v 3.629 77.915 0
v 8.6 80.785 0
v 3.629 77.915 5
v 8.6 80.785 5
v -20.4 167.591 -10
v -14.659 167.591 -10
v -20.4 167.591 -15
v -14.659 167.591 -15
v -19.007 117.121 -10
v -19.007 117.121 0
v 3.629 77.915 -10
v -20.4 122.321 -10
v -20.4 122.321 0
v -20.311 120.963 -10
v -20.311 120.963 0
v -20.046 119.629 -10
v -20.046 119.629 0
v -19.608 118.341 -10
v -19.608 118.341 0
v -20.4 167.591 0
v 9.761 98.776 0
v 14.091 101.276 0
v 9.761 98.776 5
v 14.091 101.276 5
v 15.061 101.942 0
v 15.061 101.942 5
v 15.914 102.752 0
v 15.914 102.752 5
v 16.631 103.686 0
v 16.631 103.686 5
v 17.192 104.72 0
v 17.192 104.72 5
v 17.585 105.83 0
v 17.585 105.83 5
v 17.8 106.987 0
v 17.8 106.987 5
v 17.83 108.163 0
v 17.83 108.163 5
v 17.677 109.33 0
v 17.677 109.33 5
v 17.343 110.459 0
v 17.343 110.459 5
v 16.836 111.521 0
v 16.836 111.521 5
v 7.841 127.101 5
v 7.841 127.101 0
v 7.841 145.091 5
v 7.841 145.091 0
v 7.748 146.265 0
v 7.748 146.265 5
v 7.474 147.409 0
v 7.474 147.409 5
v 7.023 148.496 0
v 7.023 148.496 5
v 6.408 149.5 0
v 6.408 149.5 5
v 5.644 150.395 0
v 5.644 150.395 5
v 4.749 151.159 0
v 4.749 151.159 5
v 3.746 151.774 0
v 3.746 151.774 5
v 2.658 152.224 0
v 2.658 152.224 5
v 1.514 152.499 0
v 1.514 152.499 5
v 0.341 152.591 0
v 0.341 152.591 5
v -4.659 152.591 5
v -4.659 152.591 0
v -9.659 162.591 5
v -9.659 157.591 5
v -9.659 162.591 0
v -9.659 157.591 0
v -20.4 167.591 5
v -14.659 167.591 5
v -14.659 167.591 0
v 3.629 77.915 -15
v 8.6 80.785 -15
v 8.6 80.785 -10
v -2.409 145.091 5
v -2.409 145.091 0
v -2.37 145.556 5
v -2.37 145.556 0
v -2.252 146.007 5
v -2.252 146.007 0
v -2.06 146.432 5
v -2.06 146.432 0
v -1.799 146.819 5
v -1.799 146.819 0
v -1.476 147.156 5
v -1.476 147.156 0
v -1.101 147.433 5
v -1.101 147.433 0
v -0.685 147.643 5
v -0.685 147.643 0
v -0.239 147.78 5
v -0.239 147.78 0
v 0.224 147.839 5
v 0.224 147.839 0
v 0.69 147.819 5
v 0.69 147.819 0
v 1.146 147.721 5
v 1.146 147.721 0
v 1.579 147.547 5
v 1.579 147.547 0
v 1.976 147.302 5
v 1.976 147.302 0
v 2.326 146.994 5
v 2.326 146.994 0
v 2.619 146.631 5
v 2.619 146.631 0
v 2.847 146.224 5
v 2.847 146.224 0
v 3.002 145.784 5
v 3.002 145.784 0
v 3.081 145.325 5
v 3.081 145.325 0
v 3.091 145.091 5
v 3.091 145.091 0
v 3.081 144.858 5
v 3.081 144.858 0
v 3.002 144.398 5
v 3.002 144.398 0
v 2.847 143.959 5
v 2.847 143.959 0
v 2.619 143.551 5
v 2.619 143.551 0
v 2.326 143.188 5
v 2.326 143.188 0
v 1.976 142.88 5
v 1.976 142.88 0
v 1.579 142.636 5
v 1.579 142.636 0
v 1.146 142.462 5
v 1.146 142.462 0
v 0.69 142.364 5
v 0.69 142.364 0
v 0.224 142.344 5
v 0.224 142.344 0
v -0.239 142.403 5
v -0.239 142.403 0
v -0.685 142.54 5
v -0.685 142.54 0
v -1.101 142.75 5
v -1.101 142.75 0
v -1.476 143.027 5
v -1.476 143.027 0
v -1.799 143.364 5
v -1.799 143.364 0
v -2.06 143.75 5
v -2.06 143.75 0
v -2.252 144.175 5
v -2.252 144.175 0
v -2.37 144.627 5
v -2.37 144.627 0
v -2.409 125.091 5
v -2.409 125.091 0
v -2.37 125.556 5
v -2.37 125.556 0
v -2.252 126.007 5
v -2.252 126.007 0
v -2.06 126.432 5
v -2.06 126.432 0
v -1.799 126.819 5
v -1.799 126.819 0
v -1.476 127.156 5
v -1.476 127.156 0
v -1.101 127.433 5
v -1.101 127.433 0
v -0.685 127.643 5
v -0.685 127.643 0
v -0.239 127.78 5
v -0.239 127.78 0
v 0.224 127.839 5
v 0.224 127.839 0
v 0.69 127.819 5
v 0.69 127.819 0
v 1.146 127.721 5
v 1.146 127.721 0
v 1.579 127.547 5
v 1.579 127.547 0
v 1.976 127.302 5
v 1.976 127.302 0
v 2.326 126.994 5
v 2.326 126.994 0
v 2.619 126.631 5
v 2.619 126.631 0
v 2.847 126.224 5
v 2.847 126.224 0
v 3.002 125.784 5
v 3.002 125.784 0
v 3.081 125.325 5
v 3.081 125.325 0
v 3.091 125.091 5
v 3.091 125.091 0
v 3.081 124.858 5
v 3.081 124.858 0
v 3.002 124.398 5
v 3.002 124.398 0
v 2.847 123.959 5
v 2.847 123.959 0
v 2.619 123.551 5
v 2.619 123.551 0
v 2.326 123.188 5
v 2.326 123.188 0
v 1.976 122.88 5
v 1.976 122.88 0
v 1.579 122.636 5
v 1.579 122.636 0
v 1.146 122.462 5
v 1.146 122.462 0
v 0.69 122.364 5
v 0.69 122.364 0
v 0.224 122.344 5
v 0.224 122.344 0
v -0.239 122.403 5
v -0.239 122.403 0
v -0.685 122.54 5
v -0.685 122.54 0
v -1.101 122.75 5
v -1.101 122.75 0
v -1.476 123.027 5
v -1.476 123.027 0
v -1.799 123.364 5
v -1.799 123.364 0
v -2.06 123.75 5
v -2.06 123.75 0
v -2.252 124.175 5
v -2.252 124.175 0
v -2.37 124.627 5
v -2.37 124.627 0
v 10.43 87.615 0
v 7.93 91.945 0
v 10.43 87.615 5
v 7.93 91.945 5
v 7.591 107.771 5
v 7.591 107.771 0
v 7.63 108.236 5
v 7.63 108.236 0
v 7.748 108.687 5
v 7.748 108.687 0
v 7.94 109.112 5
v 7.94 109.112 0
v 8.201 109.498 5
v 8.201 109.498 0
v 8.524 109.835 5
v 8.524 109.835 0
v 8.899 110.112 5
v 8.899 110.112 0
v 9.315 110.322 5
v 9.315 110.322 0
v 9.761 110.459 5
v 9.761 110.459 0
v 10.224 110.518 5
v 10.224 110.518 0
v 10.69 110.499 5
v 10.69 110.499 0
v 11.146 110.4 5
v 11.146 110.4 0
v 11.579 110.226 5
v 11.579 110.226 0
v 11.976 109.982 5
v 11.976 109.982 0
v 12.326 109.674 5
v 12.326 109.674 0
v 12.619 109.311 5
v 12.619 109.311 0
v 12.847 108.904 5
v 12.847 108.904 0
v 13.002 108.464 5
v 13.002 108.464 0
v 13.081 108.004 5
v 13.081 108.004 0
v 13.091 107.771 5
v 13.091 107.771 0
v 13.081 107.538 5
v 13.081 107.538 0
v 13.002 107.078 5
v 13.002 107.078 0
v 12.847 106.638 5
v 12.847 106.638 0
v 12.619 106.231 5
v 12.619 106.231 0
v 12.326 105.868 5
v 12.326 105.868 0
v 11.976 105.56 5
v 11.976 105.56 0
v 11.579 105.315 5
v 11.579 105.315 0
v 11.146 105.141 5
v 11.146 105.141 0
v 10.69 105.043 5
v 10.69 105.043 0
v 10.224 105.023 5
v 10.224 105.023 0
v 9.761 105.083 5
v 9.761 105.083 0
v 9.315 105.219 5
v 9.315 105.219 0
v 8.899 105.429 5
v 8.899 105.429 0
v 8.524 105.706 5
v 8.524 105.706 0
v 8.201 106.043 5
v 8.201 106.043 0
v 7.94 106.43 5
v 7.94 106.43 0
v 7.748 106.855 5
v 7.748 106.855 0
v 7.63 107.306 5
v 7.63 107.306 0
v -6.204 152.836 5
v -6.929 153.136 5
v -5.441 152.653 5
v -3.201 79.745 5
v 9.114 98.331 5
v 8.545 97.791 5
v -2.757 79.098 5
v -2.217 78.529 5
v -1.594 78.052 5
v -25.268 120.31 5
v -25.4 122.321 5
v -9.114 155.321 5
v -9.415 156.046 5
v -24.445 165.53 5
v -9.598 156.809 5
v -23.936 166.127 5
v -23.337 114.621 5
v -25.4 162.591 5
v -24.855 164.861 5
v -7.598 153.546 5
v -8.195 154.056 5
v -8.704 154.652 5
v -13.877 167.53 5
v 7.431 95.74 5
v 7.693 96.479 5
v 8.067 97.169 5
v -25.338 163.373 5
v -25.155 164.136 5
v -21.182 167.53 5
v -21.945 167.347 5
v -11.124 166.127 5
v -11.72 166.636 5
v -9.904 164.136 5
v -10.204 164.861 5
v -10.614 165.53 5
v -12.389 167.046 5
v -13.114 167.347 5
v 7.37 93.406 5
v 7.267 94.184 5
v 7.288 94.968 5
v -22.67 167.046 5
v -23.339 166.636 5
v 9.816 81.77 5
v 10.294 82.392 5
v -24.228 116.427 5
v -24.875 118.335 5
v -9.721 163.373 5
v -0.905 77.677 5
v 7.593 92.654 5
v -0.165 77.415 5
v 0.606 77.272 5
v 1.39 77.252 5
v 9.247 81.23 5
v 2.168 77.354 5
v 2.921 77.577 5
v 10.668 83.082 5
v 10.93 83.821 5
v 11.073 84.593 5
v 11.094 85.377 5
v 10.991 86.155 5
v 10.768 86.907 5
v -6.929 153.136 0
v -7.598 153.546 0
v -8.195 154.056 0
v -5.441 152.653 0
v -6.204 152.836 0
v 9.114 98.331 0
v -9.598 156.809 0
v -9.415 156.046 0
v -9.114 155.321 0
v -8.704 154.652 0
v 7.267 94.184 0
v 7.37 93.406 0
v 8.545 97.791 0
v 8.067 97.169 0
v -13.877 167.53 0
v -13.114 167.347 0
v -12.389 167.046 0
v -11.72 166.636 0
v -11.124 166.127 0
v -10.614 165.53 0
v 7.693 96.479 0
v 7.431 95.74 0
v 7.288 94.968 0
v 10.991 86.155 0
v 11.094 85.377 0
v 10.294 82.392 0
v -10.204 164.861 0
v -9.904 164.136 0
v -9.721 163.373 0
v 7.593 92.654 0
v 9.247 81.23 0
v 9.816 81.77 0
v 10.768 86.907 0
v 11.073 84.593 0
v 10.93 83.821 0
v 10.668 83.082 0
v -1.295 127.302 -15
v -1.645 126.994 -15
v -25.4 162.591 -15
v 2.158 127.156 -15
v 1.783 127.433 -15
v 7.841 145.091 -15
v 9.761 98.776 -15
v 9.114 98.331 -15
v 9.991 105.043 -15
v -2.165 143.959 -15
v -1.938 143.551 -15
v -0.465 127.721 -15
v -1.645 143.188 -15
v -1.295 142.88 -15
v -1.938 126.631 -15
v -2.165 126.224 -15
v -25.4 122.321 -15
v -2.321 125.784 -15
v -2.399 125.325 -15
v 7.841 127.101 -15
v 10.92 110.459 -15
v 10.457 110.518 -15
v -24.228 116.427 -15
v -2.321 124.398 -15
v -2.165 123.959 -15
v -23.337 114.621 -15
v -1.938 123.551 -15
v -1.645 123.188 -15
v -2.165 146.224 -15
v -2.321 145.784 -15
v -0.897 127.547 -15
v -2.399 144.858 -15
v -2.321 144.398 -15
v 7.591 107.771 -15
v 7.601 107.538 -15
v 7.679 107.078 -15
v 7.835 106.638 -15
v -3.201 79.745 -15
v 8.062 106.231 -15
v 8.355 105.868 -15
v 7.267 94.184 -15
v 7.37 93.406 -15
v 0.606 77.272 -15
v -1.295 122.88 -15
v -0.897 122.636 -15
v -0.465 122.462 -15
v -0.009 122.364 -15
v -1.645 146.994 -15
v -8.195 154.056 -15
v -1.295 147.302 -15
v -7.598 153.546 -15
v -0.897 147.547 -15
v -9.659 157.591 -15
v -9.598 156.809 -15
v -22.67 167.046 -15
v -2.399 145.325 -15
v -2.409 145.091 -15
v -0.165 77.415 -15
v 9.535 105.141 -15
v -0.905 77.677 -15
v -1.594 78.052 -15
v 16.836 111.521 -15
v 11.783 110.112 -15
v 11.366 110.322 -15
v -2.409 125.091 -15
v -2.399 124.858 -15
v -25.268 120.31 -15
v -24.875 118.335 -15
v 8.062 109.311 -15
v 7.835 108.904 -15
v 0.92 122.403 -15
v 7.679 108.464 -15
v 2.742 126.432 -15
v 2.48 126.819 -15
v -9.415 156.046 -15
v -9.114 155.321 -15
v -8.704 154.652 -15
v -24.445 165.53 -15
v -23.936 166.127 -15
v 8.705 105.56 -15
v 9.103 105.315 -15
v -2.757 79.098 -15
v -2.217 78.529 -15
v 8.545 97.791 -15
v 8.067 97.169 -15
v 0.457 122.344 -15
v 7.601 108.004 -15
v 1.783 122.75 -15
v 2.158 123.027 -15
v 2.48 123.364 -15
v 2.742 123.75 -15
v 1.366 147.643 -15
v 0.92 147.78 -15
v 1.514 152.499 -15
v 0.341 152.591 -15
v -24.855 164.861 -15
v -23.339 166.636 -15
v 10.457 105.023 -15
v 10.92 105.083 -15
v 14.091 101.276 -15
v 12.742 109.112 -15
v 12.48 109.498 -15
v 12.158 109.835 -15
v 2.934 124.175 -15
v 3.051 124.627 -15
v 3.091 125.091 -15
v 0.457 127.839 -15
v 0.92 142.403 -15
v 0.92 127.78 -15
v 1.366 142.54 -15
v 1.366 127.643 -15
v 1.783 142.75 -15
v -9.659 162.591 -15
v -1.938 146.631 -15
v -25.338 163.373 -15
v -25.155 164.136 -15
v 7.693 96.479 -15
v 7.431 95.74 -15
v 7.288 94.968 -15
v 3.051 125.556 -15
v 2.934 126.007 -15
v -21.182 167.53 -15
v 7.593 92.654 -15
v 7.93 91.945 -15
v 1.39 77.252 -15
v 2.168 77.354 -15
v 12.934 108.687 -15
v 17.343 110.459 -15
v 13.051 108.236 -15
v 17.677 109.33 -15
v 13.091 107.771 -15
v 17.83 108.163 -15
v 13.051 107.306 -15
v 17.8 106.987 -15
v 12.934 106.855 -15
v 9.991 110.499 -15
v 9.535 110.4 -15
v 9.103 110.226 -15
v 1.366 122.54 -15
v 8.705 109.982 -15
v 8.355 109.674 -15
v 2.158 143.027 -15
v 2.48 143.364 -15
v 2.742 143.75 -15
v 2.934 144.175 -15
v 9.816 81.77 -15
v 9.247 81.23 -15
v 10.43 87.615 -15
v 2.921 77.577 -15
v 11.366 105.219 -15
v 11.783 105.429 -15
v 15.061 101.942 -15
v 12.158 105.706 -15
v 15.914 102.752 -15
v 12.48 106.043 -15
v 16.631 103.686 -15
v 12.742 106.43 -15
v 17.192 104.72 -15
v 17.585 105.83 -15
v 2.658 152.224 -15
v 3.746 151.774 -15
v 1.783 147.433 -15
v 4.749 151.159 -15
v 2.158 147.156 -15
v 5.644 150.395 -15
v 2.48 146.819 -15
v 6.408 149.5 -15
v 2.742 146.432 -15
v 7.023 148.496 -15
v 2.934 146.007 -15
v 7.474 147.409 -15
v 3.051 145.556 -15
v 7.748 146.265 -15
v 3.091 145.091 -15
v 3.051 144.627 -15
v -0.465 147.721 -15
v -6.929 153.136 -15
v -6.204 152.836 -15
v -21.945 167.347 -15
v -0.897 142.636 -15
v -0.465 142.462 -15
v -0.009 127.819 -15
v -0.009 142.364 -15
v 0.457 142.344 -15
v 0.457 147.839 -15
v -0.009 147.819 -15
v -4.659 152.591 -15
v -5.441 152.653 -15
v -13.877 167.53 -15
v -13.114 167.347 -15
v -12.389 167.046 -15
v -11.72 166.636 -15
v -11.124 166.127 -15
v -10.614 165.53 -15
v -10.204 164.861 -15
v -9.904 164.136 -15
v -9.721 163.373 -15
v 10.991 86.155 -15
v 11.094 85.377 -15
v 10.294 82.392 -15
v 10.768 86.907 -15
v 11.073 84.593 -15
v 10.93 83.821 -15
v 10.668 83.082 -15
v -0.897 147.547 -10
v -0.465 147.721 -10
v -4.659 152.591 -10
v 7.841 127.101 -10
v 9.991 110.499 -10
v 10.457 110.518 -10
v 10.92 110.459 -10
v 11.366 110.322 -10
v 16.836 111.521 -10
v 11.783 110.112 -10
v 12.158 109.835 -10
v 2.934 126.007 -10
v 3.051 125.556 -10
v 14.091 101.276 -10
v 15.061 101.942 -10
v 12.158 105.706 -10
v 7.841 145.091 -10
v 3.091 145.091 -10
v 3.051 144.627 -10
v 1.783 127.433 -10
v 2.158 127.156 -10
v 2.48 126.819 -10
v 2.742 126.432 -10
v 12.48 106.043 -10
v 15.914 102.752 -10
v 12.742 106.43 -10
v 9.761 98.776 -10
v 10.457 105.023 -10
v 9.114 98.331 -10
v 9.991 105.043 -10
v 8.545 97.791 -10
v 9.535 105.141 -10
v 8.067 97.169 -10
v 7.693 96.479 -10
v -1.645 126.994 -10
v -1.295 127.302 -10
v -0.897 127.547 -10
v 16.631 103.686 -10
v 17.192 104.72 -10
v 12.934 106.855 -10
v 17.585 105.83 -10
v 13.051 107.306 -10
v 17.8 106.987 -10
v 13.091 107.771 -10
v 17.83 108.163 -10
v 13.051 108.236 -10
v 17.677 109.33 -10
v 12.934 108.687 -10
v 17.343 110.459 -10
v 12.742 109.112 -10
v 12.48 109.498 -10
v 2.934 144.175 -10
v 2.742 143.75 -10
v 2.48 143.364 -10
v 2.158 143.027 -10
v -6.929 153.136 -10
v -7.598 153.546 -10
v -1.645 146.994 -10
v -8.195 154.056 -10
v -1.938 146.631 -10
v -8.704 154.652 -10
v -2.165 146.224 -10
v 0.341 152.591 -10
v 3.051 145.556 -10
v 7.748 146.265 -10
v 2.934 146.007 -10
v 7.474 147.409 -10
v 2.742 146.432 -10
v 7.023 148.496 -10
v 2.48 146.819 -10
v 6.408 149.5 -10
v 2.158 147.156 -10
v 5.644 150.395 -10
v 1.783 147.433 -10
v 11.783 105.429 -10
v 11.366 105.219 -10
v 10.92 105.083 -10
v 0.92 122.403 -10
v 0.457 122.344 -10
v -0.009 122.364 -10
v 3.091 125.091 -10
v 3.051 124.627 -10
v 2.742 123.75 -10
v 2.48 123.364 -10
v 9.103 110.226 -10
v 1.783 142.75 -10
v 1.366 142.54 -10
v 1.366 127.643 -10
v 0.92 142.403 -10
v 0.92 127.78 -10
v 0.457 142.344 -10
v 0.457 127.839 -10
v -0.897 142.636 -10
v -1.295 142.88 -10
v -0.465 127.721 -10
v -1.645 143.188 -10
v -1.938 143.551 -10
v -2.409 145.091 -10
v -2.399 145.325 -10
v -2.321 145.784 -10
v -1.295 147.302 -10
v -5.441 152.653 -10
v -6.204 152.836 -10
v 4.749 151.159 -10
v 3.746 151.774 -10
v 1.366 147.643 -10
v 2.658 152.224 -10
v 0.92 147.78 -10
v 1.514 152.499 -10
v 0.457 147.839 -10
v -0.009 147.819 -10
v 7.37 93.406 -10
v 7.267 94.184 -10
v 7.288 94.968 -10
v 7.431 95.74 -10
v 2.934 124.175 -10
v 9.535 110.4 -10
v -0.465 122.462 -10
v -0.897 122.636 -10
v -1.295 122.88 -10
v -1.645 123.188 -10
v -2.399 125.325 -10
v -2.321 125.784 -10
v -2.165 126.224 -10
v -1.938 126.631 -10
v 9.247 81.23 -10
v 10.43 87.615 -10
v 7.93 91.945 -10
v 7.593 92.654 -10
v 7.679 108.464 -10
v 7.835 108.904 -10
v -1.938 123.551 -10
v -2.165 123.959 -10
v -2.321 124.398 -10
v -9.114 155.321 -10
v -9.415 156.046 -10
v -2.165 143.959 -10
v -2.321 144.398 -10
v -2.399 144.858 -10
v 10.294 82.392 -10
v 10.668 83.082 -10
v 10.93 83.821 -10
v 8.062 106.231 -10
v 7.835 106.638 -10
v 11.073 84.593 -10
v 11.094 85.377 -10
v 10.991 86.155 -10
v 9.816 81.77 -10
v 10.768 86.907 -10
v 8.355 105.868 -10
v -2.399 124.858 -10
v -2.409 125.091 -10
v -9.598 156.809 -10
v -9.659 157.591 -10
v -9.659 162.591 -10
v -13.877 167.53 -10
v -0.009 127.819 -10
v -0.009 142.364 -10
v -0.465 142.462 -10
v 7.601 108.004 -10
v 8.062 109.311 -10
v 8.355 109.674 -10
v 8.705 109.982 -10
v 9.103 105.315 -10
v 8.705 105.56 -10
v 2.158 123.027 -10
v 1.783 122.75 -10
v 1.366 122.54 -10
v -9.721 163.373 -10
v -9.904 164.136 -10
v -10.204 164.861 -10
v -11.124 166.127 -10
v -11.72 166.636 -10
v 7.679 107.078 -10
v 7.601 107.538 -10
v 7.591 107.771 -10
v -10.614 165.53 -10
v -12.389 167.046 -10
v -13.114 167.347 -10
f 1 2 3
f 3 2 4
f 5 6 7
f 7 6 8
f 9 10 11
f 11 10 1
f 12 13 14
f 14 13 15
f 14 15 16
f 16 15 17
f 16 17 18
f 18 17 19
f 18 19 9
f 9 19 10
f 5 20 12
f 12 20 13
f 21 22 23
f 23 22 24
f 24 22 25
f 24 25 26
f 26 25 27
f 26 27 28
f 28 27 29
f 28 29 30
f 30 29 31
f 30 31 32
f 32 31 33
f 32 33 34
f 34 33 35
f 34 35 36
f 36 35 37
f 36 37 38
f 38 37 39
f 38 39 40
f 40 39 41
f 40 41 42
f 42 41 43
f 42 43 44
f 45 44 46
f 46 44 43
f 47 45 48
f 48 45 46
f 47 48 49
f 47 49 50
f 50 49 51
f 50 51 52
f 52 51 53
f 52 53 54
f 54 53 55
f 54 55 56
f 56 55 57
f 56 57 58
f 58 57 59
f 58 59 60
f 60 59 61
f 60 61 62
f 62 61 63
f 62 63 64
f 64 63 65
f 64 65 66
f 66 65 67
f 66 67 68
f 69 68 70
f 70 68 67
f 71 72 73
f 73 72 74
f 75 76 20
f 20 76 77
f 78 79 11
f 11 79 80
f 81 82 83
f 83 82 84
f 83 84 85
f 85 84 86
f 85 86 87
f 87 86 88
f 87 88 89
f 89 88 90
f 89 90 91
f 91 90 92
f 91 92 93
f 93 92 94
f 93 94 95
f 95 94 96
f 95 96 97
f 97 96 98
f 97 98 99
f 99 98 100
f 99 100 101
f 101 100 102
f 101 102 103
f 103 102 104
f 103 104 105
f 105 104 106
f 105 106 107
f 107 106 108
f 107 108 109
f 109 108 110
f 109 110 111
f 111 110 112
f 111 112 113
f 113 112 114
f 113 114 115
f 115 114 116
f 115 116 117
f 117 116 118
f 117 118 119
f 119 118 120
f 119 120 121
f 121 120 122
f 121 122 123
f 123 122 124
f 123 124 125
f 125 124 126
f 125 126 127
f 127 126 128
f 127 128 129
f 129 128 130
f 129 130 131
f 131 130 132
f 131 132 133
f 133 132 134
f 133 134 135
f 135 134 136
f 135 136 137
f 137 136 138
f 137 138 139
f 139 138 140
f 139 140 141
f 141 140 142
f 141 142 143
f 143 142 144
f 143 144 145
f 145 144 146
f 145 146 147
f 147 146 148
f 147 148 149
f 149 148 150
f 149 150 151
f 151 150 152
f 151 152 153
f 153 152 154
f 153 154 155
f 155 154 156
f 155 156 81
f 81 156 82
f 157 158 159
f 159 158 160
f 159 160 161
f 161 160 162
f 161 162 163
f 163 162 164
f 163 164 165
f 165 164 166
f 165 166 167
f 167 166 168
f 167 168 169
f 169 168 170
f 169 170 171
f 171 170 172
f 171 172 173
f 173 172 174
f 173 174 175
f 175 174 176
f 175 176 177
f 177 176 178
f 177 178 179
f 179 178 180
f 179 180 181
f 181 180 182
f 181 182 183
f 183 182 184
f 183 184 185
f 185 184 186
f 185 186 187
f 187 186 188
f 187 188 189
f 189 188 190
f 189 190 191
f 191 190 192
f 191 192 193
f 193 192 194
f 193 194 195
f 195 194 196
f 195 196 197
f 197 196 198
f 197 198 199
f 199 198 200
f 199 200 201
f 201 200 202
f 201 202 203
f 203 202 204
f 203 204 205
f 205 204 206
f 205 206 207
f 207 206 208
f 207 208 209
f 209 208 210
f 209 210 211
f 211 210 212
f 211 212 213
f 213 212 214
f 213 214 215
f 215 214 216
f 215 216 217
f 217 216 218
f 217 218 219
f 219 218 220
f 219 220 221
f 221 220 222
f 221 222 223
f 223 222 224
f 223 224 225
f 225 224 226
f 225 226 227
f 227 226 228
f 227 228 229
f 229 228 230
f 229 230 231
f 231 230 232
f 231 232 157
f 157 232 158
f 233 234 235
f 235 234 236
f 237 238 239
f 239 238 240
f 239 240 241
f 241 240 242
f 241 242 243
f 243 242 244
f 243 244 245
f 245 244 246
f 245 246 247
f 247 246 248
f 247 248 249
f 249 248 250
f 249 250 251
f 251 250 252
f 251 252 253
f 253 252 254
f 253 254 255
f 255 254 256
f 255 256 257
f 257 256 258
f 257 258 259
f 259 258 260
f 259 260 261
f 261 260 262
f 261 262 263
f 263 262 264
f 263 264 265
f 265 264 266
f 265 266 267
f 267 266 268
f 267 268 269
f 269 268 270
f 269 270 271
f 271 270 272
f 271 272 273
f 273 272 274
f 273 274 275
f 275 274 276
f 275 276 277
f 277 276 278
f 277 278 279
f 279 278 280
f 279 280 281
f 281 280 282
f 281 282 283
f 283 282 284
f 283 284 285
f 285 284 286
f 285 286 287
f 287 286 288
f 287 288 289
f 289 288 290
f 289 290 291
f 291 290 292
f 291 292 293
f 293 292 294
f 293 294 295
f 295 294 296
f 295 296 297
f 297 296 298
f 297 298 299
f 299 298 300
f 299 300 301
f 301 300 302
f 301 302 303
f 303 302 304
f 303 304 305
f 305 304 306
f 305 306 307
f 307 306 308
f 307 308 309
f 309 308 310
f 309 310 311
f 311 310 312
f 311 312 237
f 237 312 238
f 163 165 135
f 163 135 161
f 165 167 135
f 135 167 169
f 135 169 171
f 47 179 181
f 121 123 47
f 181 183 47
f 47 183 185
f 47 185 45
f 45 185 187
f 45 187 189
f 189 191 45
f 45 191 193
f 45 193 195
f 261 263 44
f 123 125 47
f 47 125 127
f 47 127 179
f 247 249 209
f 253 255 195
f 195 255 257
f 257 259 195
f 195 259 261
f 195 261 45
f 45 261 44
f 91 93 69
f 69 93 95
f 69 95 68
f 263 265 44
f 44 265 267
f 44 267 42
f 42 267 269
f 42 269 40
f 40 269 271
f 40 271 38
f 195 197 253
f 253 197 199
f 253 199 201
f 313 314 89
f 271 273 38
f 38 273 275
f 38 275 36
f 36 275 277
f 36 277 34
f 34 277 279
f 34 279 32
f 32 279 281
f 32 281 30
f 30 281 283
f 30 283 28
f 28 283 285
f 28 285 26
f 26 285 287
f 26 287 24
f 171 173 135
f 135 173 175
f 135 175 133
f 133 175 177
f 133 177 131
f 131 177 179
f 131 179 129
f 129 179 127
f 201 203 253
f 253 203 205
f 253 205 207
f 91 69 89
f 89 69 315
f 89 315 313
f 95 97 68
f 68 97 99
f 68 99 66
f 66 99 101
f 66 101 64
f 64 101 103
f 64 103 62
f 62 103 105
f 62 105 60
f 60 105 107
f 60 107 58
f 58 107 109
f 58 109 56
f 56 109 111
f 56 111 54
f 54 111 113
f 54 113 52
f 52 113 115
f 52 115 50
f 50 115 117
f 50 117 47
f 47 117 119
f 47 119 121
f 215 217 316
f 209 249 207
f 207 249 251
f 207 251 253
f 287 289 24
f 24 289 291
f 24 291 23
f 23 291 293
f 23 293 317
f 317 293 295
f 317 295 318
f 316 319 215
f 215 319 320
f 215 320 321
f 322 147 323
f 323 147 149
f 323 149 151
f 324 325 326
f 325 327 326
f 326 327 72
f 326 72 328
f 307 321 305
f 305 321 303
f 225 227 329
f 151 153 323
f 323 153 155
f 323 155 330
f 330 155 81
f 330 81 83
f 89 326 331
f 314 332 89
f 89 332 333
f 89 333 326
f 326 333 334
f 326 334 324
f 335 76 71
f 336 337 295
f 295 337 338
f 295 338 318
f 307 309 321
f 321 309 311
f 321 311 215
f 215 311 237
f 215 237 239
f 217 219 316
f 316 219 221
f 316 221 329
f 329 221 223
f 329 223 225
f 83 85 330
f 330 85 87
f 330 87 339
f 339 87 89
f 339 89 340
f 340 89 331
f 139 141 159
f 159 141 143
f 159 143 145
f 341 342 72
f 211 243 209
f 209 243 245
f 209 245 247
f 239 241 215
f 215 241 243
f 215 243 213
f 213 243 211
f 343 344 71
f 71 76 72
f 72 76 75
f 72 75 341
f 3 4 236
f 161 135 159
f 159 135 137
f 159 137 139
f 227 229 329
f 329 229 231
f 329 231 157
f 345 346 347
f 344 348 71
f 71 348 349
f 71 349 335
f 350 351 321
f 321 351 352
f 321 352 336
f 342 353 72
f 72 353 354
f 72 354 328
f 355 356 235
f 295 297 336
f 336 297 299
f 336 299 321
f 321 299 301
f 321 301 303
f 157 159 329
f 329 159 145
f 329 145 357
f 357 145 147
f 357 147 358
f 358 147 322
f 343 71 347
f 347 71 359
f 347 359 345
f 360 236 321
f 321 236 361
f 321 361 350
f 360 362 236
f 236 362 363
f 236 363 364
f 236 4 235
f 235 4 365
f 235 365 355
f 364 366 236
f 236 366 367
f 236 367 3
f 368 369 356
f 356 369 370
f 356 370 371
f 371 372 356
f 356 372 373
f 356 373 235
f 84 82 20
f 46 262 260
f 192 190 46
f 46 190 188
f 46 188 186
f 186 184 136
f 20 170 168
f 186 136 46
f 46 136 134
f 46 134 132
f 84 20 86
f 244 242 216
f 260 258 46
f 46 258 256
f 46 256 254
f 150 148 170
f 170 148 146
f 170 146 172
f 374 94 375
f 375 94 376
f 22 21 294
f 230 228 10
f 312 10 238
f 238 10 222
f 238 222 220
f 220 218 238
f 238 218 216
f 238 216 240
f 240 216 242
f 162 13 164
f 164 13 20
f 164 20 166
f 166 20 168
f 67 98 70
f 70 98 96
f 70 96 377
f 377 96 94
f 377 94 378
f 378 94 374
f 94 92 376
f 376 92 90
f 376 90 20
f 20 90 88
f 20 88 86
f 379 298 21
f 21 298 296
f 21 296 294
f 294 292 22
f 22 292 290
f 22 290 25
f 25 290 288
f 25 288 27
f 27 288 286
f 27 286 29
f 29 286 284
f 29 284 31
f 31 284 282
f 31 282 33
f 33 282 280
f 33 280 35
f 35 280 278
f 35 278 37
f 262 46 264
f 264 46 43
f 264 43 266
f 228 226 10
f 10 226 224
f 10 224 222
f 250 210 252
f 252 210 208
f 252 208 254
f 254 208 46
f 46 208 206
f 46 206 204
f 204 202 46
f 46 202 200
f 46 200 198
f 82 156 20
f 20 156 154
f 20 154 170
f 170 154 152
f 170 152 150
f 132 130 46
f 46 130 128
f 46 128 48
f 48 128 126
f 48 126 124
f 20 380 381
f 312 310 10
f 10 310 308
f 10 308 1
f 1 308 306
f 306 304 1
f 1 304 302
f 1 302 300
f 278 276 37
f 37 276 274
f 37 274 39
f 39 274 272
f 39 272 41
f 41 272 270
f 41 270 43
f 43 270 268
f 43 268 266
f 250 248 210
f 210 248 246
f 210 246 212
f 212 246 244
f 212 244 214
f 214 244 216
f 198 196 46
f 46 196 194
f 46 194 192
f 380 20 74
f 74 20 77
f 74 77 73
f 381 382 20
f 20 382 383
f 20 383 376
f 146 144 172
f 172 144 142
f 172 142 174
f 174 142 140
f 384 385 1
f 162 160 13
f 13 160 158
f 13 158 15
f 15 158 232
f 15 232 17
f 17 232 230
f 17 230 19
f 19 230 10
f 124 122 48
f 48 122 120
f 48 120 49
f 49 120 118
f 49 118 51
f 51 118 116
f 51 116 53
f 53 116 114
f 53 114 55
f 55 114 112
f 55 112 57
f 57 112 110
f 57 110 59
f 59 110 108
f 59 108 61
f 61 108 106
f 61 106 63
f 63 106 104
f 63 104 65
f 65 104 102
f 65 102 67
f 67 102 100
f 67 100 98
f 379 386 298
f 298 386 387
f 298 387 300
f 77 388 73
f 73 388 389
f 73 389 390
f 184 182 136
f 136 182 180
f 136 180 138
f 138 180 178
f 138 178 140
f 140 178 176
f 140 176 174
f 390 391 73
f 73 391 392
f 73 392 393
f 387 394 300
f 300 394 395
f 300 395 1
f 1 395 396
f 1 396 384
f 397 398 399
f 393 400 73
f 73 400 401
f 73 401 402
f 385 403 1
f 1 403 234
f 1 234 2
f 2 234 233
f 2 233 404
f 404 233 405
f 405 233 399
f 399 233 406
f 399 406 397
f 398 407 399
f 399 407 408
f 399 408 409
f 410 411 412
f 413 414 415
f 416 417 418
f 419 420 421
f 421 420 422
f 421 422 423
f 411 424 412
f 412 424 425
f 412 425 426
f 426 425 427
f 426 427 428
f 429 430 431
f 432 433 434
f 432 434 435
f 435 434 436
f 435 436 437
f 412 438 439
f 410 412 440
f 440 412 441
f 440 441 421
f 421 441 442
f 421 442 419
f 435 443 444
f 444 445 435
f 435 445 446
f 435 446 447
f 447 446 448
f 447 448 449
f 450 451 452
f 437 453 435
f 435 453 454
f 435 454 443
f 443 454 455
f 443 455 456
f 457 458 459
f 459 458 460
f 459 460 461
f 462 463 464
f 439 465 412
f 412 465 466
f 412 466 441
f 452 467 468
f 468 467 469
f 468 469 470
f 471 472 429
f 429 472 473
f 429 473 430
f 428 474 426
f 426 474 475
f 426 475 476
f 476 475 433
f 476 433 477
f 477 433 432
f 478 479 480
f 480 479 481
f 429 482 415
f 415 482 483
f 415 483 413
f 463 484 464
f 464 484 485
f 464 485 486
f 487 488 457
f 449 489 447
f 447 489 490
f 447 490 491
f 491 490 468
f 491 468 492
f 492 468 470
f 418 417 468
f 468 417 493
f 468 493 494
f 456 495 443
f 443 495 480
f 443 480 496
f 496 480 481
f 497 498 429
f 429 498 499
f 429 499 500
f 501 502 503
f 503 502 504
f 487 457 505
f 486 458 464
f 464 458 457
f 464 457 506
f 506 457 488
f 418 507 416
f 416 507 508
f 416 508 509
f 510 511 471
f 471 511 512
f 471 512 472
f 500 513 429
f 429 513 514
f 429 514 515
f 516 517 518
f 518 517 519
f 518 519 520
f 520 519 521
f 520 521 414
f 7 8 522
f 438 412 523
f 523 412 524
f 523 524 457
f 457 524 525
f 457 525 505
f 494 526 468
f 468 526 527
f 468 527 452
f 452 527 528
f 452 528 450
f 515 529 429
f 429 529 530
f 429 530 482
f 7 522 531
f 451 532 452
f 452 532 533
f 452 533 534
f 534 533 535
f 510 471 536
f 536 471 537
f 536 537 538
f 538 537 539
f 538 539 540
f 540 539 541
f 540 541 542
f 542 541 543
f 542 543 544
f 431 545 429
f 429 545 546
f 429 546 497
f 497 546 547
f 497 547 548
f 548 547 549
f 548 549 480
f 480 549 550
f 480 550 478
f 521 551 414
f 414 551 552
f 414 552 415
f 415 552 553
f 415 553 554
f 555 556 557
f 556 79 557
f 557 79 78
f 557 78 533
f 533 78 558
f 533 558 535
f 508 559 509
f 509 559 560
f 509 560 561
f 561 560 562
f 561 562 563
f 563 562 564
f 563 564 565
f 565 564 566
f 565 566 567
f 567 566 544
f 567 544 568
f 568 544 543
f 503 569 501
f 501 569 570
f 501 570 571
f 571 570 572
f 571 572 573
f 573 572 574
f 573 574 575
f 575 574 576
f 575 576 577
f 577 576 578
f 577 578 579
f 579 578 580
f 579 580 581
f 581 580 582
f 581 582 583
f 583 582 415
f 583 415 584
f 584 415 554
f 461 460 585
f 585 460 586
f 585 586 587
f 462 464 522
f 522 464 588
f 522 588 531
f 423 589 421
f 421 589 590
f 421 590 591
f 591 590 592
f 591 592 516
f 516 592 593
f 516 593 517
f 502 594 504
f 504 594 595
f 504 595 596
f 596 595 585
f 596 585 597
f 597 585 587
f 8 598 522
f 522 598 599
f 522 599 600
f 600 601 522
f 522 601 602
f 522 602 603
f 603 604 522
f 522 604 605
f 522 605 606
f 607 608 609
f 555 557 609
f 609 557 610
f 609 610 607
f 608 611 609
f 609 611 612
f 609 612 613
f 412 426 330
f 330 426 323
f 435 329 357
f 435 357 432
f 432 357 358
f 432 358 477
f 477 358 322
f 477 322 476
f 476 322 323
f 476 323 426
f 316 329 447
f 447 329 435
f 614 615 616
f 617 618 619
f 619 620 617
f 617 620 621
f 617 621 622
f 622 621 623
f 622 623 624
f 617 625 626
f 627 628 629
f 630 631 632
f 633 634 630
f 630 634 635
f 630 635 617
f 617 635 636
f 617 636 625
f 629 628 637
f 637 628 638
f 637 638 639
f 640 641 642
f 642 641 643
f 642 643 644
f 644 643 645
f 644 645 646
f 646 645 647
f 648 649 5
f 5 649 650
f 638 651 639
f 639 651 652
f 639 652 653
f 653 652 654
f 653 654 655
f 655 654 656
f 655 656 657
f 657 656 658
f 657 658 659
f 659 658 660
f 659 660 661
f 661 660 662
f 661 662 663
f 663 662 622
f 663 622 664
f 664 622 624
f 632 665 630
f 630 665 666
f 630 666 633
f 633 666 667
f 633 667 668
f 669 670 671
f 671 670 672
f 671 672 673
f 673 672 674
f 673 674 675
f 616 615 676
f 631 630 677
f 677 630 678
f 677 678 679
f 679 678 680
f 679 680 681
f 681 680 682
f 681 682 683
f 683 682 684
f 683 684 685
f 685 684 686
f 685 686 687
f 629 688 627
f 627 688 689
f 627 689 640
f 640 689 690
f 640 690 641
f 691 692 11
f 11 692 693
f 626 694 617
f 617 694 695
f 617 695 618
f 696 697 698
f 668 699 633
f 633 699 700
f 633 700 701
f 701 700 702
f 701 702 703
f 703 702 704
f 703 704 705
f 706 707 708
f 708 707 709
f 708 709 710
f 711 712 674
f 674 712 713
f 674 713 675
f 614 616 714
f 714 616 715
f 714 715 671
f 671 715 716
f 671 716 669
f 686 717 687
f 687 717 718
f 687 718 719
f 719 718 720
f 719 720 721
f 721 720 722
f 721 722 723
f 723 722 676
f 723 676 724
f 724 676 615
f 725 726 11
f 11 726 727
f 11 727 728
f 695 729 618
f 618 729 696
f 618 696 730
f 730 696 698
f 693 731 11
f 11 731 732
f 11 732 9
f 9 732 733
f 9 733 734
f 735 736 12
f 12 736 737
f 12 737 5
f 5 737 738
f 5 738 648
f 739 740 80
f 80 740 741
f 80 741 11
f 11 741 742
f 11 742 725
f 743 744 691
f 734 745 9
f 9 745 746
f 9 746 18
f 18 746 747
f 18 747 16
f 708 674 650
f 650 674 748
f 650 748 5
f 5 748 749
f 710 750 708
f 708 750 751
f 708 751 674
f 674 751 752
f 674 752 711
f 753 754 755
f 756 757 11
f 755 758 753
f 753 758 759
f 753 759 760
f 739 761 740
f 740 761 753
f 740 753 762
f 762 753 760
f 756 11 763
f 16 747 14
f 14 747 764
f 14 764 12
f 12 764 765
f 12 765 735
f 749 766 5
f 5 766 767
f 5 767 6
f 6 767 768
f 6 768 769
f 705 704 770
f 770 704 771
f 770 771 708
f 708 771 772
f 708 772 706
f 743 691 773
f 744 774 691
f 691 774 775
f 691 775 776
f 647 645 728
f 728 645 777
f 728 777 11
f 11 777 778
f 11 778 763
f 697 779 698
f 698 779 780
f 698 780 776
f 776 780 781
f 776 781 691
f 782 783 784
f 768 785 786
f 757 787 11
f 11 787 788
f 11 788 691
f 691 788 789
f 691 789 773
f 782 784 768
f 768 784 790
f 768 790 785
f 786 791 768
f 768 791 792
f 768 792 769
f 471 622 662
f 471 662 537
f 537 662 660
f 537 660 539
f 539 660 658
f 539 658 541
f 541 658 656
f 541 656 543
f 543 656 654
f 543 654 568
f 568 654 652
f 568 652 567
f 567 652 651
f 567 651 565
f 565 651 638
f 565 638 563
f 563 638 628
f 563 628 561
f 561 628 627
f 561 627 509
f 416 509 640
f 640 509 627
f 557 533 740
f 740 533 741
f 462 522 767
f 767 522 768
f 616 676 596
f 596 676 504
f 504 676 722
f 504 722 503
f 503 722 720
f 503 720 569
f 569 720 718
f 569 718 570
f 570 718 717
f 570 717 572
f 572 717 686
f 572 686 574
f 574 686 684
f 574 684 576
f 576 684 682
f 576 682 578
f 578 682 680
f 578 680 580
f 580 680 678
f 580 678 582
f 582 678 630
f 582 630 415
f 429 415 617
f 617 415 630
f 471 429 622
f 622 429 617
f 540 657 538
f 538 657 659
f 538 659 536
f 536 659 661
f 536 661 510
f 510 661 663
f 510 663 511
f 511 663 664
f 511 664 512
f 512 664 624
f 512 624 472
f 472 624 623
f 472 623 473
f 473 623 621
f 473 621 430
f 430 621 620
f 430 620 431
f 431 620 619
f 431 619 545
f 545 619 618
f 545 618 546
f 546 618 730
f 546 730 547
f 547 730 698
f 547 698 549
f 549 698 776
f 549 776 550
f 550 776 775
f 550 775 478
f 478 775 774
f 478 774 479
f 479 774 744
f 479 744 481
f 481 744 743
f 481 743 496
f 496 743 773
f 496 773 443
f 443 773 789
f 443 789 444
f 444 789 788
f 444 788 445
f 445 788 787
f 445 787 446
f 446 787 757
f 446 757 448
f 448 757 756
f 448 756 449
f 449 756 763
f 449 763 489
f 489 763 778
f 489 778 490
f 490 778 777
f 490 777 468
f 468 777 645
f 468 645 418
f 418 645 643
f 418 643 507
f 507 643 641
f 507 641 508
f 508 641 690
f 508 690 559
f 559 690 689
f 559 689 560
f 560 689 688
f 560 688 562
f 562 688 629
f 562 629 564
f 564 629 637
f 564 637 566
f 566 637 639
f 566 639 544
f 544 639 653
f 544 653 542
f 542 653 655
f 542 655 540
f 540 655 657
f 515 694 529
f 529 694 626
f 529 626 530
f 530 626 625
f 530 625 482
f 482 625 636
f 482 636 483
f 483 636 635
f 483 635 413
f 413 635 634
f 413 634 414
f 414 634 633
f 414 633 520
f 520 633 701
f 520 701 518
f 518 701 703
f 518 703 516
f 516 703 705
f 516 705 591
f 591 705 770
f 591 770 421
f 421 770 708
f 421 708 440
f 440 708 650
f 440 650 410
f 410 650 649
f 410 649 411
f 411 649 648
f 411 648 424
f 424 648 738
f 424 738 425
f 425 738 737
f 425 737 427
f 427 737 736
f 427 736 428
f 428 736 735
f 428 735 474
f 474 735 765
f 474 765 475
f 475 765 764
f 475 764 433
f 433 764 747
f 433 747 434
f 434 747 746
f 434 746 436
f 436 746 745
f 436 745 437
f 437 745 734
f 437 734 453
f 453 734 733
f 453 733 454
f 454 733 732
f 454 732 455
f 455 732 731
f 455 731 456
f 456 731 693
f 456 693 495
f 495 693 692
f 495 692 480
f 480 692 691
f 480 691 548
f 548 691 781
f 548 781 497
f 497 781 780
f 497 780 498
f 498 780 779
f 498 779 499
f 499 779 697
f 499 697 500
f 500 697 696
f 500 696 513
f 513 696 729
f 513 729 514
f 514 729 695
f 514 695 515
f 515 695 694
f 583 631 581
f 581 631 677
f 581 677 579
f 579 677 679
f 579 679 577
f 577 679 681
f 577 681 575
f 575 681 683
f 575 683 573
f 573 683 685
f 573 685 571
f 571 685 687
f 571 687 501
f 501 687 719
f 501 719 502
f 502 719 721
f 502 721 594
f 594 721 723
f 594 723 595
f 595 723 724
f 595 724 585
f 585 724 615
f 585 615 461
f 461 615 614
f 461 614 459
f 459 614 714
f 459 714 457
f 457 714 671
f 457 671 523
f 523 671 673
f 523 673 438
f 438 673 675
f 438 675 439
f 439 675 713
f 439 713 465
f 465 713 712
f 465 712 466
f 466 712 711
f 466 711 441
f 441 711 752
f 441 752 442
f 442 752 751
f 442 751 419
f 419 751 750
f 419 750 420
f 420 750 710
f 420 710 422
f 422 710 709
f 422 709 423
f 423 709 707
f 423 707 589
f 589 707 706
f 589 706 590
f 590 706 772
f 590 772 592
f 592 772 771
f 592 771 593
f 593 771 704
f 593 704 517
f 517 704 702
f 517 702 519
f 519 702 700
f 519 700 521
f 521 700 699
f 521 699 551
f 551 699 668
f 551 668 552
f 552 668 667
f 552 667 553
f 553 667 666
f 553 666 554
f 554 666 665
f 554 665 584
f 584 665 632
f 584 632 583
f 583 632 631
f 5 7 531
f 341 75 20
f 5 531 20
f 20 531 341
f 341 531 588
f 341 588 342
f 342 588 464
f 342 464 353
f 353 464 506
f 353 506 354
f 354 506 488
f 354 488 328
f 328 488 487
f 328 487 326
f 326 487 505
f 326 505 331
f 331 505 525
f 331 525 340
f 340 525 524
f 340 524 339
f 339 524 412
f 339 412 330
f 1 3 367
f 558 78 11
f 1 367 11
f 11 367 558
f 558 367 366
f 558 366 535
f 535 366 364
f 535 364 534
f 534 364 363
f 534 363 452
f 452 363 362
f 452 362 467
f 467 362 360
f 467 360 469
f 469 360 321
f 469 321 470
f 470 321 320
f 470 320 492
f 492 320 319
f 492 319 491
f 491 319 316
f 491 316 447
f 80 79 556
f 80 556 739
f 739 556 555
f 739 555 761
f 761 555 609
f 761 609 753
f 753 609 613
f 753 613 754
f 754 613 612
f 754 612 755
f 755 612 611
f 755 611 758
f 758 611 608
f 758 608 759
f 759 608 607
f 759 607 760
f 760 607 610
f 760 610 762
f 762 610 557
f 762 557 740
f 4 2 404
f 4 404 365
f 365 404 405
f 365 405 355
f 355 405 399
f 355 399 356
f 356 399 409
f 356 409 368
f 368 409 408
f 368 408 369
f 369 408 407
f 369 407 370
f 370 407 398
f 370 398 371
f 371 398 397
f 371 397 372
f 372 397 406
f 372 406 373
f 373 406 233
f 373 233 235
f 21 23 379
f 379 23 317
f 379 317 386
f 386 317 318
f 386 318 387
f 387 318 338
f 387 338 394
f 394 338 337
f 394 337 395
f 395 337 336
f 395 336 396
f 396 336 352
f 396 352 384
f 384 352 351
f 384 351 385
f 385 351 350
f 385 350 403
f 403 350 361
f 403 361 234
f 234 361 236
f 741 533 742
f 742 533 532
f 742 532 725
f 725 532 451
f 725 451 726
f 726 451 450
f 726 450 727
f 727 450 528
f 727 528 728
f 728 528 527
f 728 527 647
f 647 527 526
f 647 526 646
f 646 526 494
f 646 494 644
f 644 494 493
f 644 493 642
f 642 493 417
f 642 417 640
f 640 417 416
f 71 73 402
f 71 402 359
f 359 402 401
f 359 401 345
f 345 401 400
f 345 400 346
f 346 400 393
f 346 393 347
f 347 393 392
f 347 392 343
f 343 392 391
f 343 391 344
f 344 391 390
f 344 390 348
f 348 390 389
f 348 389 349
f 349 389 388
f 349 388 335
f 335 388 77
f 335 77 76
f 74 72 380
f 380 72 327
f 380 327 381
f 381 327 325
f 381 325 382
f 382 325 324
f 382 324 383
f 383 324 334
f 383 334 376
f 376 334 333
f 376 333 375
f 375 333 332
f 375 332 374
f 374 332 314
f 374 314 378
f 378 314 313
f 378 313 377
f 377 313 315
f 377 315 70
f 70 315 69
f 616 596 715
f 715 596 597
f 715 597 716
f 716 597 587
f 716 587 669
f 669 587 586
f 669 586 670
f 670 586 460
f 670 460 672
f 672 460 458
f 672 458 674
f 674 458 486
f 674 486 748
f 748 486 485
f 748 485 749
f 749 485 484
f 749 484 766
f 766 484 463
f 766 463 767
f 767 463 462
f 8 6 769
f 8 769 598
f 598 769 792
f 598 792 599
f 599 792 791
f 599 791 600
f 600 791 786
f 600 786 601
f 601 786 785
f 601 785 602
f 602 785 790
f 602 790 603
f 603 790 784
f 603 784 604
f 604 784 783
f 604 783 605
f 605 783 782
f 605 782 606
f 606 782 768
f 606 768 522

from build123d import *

# Parameters (mm, degrees)
SKETCH1_R           = 2.75
BOSS_EXTRUDE1_DEPTH = 5
SKETCH2_R           = 2.75
BOSS_EXTRUDE2_DEPTH = 5
BOSS_EXTRUDE3_START = -20
BOSS_EXTRUDE3_DEPTH = 20
FILLET1_R           = 5


with BuildPart() as part:
    # Sketch1 → Boss-Extrude1 (new body)
    with BuildSketch(Plane.XY):
        with BuildLine():
            ThreePointArc((7.840741737, 145.091301473), (5.644042596, 150.394602332), (0.340741737, 152.591301473))
            Line((0.340741737, 152.591301473), (-9.659258263, 152.591301473))
            Line((-9.659258263, 152.591301473), (-9.659258263, 167.591301473))
            Line((-9.659258263, 167.591301473), (-20.400000003, 167.591301473))
            Line((-20.400000003, 167.591301473), (-20.4, 122.320508076))
            ThreePointArc((-20.4, 122.320508076), (-20.045628593, 119.628790007), (-19.006664199, 117.120508076))
            Line((-19.006664199, 117.120508076), (3.628732497, 77.914850942))
            Line((3.628732497, 77.914850942), (12.930487699, 83.285221812))
            Line((12.930487699, 83.285221812), (5.430487699, 96.275602869))
            Line((5.430487699, 96.275602869), (14.090741737, 101.275602869))
            ThreePointArc((14.090741737, 101.275602869), (17.585185434, 105.829650559), (16.835932265, 111.520793398))
            Line((16.835932265, 111.520793398), (7.840741737, 127.100920417))
            Line((7.840741737, 127.100920417), (7.840741737, 145.091301473))
        make_face()
        with Locations((10.340741737, 107.770793398)):
            Circle(SKETCH1_R, mode=Mode.SUBTRACT)
        with Locations((0.340741737, 125.091301473)):
            Circle(SKETCH1_R, mode=Mode.SUBTRACT)
        with Locations((0.340741737, 145.091301473)):
            Circle(SKETCH1_R, mode=Mode.SUBTRACT)
    extrude(amount=BOSS_EXTRUDE1_DEPTH)



with BuildPart() as body_2:
    # Sketch2 → Boss-Extrude2 (new body)
    with BuildSketch(Plane(origin=(0, 0, -10), x_dir=(-1, 0, 0), z_dir=(0, 0, -1))):
        with BuildLine():
            Line((-14.090741737, 101.275602869), (-5.430487699, 96.275602869))
            Line((-5.430487699, 96.275602869), (-12.930487699, 83.285221812))
            Line((-12.930487699, 83.285221812), (-3.628732497, 77.914850942))
            Line((-3.628732497, 77.914850942), (19.006664199, 117.120508076))
            ThreePointArc((19.006664199, 117.120508076), (20.045628593, 119.628790007), (20.4, 122.320508076))
            Line((20.4, 122.320508076), (20.400000003, 167.591301473))
            Line((20.400000003, 167.591301473), (9.659258263, 167.591301473))
            Line((9.659258263, 167.591301473), (9.659258263, 152.591301473))
            Line((9.659258263, 152.591301473), (-0.340741737, 152.591301473))
            ThreePointArc((-0.340741737, 152.591301473), (-5.644042596, 150.394602332), (-7.840741737, 145.091301473))
            Line((-7.840741737, 145.091301473), (-7.840741737, 127.100920417))
            Line((-7.840741737, 127.100920417), (-16.835932265, 111.520793398))
            ThreePointArc((-16.835932265, 111.520793398), (-17.585185434, 105.829650559), (-14.090741737, 101.275602869))
        make_face()
        with Locations(Location((-10.340741737, 107.770793398, 0), (0, 0, 180))):
            Circle(SKETCH2_R, mode=Mode.SUBTRACT)
        with Locations(Location((-0.340741737, 125.091301473, 0), (0, 0, 180))):
            Circle(SKETCH2_R, mode=Mode.SUBTRACT)
        with Locations(Location((-0.340741737, 145.091301473, 0), (0, 0, 180))):
            Circle(SKETCH2_R, mode=Mode.SUBTRACT)
    extrude(amount=BOSS_EXTRUDE2_DEPTH)


with BuildPart() as part_1:
    add(part.part)

    add(body_2.part)  # Boss-Extrude3 merges body 2
    # Sketch3 → Boss-Extrude3 (add)
    with BuildSketch(Plane.XY.offset(5).offset(BOSS_EXTRUDE3_START)):
        with BuildLine():
            Line((-0.701394522, 75.414850943), (3.628732497, 77.914850942))
            Line((3.628732497, 77.914850942), (-19.006664199, 117.120508076))
            ThreePointArc((-19.006664199, 117.120508076), (-20.045628593, 119.628790007), (-20.4, 122.320508076))
            Line((-20.4, 122.320508076), (-20.400000003, 167.591301473))
            Line((-20.400000003, 167.591301473), (-25.400000003, 167.591301473))
            Line((-25.400000003, 167.591301473), (-25.4, 122.320508076))
            ThreePointArc((-25.4, 122.320508076), (-24.875257725, 118.334694781), (-23.336791218, 114.620508076))
            Line((-23.336791218, 114.620508076), (-0.701394522, 75.414850943))
        make_face()
    extrude(amount=BOSS_EXTRUDE3_DEPTH)

    # Fillet1
    fillet1_edges = [part_1.edges().sort_by_distance(p)[0] for p in [
        (5.430487699, 96.275602869, 2.5),
        (12.930487699, 83.285221812, 2.5),
        (-9.659258263, 167.591301473, 2.5),
        (-9.659258263, 152.591301473, 2.5),
        (-0.701394522, 75.414850943, -5),
        (-25.400000003, 167.591301473, -5),
        (5.430487699, 96.275602869, -12.5),
        (12.930487699, 83.285221812, -12.5),
        (-9.659258263, 167.591301473, -12.5),
        (-9.659258263, 152.591301473, -12.5),
    ]]
    fillet(fillet1_edges, radius=FILLET1_R - 0.0001)  # a hair under: the kernel refuses the full size


solid = part_1.part
